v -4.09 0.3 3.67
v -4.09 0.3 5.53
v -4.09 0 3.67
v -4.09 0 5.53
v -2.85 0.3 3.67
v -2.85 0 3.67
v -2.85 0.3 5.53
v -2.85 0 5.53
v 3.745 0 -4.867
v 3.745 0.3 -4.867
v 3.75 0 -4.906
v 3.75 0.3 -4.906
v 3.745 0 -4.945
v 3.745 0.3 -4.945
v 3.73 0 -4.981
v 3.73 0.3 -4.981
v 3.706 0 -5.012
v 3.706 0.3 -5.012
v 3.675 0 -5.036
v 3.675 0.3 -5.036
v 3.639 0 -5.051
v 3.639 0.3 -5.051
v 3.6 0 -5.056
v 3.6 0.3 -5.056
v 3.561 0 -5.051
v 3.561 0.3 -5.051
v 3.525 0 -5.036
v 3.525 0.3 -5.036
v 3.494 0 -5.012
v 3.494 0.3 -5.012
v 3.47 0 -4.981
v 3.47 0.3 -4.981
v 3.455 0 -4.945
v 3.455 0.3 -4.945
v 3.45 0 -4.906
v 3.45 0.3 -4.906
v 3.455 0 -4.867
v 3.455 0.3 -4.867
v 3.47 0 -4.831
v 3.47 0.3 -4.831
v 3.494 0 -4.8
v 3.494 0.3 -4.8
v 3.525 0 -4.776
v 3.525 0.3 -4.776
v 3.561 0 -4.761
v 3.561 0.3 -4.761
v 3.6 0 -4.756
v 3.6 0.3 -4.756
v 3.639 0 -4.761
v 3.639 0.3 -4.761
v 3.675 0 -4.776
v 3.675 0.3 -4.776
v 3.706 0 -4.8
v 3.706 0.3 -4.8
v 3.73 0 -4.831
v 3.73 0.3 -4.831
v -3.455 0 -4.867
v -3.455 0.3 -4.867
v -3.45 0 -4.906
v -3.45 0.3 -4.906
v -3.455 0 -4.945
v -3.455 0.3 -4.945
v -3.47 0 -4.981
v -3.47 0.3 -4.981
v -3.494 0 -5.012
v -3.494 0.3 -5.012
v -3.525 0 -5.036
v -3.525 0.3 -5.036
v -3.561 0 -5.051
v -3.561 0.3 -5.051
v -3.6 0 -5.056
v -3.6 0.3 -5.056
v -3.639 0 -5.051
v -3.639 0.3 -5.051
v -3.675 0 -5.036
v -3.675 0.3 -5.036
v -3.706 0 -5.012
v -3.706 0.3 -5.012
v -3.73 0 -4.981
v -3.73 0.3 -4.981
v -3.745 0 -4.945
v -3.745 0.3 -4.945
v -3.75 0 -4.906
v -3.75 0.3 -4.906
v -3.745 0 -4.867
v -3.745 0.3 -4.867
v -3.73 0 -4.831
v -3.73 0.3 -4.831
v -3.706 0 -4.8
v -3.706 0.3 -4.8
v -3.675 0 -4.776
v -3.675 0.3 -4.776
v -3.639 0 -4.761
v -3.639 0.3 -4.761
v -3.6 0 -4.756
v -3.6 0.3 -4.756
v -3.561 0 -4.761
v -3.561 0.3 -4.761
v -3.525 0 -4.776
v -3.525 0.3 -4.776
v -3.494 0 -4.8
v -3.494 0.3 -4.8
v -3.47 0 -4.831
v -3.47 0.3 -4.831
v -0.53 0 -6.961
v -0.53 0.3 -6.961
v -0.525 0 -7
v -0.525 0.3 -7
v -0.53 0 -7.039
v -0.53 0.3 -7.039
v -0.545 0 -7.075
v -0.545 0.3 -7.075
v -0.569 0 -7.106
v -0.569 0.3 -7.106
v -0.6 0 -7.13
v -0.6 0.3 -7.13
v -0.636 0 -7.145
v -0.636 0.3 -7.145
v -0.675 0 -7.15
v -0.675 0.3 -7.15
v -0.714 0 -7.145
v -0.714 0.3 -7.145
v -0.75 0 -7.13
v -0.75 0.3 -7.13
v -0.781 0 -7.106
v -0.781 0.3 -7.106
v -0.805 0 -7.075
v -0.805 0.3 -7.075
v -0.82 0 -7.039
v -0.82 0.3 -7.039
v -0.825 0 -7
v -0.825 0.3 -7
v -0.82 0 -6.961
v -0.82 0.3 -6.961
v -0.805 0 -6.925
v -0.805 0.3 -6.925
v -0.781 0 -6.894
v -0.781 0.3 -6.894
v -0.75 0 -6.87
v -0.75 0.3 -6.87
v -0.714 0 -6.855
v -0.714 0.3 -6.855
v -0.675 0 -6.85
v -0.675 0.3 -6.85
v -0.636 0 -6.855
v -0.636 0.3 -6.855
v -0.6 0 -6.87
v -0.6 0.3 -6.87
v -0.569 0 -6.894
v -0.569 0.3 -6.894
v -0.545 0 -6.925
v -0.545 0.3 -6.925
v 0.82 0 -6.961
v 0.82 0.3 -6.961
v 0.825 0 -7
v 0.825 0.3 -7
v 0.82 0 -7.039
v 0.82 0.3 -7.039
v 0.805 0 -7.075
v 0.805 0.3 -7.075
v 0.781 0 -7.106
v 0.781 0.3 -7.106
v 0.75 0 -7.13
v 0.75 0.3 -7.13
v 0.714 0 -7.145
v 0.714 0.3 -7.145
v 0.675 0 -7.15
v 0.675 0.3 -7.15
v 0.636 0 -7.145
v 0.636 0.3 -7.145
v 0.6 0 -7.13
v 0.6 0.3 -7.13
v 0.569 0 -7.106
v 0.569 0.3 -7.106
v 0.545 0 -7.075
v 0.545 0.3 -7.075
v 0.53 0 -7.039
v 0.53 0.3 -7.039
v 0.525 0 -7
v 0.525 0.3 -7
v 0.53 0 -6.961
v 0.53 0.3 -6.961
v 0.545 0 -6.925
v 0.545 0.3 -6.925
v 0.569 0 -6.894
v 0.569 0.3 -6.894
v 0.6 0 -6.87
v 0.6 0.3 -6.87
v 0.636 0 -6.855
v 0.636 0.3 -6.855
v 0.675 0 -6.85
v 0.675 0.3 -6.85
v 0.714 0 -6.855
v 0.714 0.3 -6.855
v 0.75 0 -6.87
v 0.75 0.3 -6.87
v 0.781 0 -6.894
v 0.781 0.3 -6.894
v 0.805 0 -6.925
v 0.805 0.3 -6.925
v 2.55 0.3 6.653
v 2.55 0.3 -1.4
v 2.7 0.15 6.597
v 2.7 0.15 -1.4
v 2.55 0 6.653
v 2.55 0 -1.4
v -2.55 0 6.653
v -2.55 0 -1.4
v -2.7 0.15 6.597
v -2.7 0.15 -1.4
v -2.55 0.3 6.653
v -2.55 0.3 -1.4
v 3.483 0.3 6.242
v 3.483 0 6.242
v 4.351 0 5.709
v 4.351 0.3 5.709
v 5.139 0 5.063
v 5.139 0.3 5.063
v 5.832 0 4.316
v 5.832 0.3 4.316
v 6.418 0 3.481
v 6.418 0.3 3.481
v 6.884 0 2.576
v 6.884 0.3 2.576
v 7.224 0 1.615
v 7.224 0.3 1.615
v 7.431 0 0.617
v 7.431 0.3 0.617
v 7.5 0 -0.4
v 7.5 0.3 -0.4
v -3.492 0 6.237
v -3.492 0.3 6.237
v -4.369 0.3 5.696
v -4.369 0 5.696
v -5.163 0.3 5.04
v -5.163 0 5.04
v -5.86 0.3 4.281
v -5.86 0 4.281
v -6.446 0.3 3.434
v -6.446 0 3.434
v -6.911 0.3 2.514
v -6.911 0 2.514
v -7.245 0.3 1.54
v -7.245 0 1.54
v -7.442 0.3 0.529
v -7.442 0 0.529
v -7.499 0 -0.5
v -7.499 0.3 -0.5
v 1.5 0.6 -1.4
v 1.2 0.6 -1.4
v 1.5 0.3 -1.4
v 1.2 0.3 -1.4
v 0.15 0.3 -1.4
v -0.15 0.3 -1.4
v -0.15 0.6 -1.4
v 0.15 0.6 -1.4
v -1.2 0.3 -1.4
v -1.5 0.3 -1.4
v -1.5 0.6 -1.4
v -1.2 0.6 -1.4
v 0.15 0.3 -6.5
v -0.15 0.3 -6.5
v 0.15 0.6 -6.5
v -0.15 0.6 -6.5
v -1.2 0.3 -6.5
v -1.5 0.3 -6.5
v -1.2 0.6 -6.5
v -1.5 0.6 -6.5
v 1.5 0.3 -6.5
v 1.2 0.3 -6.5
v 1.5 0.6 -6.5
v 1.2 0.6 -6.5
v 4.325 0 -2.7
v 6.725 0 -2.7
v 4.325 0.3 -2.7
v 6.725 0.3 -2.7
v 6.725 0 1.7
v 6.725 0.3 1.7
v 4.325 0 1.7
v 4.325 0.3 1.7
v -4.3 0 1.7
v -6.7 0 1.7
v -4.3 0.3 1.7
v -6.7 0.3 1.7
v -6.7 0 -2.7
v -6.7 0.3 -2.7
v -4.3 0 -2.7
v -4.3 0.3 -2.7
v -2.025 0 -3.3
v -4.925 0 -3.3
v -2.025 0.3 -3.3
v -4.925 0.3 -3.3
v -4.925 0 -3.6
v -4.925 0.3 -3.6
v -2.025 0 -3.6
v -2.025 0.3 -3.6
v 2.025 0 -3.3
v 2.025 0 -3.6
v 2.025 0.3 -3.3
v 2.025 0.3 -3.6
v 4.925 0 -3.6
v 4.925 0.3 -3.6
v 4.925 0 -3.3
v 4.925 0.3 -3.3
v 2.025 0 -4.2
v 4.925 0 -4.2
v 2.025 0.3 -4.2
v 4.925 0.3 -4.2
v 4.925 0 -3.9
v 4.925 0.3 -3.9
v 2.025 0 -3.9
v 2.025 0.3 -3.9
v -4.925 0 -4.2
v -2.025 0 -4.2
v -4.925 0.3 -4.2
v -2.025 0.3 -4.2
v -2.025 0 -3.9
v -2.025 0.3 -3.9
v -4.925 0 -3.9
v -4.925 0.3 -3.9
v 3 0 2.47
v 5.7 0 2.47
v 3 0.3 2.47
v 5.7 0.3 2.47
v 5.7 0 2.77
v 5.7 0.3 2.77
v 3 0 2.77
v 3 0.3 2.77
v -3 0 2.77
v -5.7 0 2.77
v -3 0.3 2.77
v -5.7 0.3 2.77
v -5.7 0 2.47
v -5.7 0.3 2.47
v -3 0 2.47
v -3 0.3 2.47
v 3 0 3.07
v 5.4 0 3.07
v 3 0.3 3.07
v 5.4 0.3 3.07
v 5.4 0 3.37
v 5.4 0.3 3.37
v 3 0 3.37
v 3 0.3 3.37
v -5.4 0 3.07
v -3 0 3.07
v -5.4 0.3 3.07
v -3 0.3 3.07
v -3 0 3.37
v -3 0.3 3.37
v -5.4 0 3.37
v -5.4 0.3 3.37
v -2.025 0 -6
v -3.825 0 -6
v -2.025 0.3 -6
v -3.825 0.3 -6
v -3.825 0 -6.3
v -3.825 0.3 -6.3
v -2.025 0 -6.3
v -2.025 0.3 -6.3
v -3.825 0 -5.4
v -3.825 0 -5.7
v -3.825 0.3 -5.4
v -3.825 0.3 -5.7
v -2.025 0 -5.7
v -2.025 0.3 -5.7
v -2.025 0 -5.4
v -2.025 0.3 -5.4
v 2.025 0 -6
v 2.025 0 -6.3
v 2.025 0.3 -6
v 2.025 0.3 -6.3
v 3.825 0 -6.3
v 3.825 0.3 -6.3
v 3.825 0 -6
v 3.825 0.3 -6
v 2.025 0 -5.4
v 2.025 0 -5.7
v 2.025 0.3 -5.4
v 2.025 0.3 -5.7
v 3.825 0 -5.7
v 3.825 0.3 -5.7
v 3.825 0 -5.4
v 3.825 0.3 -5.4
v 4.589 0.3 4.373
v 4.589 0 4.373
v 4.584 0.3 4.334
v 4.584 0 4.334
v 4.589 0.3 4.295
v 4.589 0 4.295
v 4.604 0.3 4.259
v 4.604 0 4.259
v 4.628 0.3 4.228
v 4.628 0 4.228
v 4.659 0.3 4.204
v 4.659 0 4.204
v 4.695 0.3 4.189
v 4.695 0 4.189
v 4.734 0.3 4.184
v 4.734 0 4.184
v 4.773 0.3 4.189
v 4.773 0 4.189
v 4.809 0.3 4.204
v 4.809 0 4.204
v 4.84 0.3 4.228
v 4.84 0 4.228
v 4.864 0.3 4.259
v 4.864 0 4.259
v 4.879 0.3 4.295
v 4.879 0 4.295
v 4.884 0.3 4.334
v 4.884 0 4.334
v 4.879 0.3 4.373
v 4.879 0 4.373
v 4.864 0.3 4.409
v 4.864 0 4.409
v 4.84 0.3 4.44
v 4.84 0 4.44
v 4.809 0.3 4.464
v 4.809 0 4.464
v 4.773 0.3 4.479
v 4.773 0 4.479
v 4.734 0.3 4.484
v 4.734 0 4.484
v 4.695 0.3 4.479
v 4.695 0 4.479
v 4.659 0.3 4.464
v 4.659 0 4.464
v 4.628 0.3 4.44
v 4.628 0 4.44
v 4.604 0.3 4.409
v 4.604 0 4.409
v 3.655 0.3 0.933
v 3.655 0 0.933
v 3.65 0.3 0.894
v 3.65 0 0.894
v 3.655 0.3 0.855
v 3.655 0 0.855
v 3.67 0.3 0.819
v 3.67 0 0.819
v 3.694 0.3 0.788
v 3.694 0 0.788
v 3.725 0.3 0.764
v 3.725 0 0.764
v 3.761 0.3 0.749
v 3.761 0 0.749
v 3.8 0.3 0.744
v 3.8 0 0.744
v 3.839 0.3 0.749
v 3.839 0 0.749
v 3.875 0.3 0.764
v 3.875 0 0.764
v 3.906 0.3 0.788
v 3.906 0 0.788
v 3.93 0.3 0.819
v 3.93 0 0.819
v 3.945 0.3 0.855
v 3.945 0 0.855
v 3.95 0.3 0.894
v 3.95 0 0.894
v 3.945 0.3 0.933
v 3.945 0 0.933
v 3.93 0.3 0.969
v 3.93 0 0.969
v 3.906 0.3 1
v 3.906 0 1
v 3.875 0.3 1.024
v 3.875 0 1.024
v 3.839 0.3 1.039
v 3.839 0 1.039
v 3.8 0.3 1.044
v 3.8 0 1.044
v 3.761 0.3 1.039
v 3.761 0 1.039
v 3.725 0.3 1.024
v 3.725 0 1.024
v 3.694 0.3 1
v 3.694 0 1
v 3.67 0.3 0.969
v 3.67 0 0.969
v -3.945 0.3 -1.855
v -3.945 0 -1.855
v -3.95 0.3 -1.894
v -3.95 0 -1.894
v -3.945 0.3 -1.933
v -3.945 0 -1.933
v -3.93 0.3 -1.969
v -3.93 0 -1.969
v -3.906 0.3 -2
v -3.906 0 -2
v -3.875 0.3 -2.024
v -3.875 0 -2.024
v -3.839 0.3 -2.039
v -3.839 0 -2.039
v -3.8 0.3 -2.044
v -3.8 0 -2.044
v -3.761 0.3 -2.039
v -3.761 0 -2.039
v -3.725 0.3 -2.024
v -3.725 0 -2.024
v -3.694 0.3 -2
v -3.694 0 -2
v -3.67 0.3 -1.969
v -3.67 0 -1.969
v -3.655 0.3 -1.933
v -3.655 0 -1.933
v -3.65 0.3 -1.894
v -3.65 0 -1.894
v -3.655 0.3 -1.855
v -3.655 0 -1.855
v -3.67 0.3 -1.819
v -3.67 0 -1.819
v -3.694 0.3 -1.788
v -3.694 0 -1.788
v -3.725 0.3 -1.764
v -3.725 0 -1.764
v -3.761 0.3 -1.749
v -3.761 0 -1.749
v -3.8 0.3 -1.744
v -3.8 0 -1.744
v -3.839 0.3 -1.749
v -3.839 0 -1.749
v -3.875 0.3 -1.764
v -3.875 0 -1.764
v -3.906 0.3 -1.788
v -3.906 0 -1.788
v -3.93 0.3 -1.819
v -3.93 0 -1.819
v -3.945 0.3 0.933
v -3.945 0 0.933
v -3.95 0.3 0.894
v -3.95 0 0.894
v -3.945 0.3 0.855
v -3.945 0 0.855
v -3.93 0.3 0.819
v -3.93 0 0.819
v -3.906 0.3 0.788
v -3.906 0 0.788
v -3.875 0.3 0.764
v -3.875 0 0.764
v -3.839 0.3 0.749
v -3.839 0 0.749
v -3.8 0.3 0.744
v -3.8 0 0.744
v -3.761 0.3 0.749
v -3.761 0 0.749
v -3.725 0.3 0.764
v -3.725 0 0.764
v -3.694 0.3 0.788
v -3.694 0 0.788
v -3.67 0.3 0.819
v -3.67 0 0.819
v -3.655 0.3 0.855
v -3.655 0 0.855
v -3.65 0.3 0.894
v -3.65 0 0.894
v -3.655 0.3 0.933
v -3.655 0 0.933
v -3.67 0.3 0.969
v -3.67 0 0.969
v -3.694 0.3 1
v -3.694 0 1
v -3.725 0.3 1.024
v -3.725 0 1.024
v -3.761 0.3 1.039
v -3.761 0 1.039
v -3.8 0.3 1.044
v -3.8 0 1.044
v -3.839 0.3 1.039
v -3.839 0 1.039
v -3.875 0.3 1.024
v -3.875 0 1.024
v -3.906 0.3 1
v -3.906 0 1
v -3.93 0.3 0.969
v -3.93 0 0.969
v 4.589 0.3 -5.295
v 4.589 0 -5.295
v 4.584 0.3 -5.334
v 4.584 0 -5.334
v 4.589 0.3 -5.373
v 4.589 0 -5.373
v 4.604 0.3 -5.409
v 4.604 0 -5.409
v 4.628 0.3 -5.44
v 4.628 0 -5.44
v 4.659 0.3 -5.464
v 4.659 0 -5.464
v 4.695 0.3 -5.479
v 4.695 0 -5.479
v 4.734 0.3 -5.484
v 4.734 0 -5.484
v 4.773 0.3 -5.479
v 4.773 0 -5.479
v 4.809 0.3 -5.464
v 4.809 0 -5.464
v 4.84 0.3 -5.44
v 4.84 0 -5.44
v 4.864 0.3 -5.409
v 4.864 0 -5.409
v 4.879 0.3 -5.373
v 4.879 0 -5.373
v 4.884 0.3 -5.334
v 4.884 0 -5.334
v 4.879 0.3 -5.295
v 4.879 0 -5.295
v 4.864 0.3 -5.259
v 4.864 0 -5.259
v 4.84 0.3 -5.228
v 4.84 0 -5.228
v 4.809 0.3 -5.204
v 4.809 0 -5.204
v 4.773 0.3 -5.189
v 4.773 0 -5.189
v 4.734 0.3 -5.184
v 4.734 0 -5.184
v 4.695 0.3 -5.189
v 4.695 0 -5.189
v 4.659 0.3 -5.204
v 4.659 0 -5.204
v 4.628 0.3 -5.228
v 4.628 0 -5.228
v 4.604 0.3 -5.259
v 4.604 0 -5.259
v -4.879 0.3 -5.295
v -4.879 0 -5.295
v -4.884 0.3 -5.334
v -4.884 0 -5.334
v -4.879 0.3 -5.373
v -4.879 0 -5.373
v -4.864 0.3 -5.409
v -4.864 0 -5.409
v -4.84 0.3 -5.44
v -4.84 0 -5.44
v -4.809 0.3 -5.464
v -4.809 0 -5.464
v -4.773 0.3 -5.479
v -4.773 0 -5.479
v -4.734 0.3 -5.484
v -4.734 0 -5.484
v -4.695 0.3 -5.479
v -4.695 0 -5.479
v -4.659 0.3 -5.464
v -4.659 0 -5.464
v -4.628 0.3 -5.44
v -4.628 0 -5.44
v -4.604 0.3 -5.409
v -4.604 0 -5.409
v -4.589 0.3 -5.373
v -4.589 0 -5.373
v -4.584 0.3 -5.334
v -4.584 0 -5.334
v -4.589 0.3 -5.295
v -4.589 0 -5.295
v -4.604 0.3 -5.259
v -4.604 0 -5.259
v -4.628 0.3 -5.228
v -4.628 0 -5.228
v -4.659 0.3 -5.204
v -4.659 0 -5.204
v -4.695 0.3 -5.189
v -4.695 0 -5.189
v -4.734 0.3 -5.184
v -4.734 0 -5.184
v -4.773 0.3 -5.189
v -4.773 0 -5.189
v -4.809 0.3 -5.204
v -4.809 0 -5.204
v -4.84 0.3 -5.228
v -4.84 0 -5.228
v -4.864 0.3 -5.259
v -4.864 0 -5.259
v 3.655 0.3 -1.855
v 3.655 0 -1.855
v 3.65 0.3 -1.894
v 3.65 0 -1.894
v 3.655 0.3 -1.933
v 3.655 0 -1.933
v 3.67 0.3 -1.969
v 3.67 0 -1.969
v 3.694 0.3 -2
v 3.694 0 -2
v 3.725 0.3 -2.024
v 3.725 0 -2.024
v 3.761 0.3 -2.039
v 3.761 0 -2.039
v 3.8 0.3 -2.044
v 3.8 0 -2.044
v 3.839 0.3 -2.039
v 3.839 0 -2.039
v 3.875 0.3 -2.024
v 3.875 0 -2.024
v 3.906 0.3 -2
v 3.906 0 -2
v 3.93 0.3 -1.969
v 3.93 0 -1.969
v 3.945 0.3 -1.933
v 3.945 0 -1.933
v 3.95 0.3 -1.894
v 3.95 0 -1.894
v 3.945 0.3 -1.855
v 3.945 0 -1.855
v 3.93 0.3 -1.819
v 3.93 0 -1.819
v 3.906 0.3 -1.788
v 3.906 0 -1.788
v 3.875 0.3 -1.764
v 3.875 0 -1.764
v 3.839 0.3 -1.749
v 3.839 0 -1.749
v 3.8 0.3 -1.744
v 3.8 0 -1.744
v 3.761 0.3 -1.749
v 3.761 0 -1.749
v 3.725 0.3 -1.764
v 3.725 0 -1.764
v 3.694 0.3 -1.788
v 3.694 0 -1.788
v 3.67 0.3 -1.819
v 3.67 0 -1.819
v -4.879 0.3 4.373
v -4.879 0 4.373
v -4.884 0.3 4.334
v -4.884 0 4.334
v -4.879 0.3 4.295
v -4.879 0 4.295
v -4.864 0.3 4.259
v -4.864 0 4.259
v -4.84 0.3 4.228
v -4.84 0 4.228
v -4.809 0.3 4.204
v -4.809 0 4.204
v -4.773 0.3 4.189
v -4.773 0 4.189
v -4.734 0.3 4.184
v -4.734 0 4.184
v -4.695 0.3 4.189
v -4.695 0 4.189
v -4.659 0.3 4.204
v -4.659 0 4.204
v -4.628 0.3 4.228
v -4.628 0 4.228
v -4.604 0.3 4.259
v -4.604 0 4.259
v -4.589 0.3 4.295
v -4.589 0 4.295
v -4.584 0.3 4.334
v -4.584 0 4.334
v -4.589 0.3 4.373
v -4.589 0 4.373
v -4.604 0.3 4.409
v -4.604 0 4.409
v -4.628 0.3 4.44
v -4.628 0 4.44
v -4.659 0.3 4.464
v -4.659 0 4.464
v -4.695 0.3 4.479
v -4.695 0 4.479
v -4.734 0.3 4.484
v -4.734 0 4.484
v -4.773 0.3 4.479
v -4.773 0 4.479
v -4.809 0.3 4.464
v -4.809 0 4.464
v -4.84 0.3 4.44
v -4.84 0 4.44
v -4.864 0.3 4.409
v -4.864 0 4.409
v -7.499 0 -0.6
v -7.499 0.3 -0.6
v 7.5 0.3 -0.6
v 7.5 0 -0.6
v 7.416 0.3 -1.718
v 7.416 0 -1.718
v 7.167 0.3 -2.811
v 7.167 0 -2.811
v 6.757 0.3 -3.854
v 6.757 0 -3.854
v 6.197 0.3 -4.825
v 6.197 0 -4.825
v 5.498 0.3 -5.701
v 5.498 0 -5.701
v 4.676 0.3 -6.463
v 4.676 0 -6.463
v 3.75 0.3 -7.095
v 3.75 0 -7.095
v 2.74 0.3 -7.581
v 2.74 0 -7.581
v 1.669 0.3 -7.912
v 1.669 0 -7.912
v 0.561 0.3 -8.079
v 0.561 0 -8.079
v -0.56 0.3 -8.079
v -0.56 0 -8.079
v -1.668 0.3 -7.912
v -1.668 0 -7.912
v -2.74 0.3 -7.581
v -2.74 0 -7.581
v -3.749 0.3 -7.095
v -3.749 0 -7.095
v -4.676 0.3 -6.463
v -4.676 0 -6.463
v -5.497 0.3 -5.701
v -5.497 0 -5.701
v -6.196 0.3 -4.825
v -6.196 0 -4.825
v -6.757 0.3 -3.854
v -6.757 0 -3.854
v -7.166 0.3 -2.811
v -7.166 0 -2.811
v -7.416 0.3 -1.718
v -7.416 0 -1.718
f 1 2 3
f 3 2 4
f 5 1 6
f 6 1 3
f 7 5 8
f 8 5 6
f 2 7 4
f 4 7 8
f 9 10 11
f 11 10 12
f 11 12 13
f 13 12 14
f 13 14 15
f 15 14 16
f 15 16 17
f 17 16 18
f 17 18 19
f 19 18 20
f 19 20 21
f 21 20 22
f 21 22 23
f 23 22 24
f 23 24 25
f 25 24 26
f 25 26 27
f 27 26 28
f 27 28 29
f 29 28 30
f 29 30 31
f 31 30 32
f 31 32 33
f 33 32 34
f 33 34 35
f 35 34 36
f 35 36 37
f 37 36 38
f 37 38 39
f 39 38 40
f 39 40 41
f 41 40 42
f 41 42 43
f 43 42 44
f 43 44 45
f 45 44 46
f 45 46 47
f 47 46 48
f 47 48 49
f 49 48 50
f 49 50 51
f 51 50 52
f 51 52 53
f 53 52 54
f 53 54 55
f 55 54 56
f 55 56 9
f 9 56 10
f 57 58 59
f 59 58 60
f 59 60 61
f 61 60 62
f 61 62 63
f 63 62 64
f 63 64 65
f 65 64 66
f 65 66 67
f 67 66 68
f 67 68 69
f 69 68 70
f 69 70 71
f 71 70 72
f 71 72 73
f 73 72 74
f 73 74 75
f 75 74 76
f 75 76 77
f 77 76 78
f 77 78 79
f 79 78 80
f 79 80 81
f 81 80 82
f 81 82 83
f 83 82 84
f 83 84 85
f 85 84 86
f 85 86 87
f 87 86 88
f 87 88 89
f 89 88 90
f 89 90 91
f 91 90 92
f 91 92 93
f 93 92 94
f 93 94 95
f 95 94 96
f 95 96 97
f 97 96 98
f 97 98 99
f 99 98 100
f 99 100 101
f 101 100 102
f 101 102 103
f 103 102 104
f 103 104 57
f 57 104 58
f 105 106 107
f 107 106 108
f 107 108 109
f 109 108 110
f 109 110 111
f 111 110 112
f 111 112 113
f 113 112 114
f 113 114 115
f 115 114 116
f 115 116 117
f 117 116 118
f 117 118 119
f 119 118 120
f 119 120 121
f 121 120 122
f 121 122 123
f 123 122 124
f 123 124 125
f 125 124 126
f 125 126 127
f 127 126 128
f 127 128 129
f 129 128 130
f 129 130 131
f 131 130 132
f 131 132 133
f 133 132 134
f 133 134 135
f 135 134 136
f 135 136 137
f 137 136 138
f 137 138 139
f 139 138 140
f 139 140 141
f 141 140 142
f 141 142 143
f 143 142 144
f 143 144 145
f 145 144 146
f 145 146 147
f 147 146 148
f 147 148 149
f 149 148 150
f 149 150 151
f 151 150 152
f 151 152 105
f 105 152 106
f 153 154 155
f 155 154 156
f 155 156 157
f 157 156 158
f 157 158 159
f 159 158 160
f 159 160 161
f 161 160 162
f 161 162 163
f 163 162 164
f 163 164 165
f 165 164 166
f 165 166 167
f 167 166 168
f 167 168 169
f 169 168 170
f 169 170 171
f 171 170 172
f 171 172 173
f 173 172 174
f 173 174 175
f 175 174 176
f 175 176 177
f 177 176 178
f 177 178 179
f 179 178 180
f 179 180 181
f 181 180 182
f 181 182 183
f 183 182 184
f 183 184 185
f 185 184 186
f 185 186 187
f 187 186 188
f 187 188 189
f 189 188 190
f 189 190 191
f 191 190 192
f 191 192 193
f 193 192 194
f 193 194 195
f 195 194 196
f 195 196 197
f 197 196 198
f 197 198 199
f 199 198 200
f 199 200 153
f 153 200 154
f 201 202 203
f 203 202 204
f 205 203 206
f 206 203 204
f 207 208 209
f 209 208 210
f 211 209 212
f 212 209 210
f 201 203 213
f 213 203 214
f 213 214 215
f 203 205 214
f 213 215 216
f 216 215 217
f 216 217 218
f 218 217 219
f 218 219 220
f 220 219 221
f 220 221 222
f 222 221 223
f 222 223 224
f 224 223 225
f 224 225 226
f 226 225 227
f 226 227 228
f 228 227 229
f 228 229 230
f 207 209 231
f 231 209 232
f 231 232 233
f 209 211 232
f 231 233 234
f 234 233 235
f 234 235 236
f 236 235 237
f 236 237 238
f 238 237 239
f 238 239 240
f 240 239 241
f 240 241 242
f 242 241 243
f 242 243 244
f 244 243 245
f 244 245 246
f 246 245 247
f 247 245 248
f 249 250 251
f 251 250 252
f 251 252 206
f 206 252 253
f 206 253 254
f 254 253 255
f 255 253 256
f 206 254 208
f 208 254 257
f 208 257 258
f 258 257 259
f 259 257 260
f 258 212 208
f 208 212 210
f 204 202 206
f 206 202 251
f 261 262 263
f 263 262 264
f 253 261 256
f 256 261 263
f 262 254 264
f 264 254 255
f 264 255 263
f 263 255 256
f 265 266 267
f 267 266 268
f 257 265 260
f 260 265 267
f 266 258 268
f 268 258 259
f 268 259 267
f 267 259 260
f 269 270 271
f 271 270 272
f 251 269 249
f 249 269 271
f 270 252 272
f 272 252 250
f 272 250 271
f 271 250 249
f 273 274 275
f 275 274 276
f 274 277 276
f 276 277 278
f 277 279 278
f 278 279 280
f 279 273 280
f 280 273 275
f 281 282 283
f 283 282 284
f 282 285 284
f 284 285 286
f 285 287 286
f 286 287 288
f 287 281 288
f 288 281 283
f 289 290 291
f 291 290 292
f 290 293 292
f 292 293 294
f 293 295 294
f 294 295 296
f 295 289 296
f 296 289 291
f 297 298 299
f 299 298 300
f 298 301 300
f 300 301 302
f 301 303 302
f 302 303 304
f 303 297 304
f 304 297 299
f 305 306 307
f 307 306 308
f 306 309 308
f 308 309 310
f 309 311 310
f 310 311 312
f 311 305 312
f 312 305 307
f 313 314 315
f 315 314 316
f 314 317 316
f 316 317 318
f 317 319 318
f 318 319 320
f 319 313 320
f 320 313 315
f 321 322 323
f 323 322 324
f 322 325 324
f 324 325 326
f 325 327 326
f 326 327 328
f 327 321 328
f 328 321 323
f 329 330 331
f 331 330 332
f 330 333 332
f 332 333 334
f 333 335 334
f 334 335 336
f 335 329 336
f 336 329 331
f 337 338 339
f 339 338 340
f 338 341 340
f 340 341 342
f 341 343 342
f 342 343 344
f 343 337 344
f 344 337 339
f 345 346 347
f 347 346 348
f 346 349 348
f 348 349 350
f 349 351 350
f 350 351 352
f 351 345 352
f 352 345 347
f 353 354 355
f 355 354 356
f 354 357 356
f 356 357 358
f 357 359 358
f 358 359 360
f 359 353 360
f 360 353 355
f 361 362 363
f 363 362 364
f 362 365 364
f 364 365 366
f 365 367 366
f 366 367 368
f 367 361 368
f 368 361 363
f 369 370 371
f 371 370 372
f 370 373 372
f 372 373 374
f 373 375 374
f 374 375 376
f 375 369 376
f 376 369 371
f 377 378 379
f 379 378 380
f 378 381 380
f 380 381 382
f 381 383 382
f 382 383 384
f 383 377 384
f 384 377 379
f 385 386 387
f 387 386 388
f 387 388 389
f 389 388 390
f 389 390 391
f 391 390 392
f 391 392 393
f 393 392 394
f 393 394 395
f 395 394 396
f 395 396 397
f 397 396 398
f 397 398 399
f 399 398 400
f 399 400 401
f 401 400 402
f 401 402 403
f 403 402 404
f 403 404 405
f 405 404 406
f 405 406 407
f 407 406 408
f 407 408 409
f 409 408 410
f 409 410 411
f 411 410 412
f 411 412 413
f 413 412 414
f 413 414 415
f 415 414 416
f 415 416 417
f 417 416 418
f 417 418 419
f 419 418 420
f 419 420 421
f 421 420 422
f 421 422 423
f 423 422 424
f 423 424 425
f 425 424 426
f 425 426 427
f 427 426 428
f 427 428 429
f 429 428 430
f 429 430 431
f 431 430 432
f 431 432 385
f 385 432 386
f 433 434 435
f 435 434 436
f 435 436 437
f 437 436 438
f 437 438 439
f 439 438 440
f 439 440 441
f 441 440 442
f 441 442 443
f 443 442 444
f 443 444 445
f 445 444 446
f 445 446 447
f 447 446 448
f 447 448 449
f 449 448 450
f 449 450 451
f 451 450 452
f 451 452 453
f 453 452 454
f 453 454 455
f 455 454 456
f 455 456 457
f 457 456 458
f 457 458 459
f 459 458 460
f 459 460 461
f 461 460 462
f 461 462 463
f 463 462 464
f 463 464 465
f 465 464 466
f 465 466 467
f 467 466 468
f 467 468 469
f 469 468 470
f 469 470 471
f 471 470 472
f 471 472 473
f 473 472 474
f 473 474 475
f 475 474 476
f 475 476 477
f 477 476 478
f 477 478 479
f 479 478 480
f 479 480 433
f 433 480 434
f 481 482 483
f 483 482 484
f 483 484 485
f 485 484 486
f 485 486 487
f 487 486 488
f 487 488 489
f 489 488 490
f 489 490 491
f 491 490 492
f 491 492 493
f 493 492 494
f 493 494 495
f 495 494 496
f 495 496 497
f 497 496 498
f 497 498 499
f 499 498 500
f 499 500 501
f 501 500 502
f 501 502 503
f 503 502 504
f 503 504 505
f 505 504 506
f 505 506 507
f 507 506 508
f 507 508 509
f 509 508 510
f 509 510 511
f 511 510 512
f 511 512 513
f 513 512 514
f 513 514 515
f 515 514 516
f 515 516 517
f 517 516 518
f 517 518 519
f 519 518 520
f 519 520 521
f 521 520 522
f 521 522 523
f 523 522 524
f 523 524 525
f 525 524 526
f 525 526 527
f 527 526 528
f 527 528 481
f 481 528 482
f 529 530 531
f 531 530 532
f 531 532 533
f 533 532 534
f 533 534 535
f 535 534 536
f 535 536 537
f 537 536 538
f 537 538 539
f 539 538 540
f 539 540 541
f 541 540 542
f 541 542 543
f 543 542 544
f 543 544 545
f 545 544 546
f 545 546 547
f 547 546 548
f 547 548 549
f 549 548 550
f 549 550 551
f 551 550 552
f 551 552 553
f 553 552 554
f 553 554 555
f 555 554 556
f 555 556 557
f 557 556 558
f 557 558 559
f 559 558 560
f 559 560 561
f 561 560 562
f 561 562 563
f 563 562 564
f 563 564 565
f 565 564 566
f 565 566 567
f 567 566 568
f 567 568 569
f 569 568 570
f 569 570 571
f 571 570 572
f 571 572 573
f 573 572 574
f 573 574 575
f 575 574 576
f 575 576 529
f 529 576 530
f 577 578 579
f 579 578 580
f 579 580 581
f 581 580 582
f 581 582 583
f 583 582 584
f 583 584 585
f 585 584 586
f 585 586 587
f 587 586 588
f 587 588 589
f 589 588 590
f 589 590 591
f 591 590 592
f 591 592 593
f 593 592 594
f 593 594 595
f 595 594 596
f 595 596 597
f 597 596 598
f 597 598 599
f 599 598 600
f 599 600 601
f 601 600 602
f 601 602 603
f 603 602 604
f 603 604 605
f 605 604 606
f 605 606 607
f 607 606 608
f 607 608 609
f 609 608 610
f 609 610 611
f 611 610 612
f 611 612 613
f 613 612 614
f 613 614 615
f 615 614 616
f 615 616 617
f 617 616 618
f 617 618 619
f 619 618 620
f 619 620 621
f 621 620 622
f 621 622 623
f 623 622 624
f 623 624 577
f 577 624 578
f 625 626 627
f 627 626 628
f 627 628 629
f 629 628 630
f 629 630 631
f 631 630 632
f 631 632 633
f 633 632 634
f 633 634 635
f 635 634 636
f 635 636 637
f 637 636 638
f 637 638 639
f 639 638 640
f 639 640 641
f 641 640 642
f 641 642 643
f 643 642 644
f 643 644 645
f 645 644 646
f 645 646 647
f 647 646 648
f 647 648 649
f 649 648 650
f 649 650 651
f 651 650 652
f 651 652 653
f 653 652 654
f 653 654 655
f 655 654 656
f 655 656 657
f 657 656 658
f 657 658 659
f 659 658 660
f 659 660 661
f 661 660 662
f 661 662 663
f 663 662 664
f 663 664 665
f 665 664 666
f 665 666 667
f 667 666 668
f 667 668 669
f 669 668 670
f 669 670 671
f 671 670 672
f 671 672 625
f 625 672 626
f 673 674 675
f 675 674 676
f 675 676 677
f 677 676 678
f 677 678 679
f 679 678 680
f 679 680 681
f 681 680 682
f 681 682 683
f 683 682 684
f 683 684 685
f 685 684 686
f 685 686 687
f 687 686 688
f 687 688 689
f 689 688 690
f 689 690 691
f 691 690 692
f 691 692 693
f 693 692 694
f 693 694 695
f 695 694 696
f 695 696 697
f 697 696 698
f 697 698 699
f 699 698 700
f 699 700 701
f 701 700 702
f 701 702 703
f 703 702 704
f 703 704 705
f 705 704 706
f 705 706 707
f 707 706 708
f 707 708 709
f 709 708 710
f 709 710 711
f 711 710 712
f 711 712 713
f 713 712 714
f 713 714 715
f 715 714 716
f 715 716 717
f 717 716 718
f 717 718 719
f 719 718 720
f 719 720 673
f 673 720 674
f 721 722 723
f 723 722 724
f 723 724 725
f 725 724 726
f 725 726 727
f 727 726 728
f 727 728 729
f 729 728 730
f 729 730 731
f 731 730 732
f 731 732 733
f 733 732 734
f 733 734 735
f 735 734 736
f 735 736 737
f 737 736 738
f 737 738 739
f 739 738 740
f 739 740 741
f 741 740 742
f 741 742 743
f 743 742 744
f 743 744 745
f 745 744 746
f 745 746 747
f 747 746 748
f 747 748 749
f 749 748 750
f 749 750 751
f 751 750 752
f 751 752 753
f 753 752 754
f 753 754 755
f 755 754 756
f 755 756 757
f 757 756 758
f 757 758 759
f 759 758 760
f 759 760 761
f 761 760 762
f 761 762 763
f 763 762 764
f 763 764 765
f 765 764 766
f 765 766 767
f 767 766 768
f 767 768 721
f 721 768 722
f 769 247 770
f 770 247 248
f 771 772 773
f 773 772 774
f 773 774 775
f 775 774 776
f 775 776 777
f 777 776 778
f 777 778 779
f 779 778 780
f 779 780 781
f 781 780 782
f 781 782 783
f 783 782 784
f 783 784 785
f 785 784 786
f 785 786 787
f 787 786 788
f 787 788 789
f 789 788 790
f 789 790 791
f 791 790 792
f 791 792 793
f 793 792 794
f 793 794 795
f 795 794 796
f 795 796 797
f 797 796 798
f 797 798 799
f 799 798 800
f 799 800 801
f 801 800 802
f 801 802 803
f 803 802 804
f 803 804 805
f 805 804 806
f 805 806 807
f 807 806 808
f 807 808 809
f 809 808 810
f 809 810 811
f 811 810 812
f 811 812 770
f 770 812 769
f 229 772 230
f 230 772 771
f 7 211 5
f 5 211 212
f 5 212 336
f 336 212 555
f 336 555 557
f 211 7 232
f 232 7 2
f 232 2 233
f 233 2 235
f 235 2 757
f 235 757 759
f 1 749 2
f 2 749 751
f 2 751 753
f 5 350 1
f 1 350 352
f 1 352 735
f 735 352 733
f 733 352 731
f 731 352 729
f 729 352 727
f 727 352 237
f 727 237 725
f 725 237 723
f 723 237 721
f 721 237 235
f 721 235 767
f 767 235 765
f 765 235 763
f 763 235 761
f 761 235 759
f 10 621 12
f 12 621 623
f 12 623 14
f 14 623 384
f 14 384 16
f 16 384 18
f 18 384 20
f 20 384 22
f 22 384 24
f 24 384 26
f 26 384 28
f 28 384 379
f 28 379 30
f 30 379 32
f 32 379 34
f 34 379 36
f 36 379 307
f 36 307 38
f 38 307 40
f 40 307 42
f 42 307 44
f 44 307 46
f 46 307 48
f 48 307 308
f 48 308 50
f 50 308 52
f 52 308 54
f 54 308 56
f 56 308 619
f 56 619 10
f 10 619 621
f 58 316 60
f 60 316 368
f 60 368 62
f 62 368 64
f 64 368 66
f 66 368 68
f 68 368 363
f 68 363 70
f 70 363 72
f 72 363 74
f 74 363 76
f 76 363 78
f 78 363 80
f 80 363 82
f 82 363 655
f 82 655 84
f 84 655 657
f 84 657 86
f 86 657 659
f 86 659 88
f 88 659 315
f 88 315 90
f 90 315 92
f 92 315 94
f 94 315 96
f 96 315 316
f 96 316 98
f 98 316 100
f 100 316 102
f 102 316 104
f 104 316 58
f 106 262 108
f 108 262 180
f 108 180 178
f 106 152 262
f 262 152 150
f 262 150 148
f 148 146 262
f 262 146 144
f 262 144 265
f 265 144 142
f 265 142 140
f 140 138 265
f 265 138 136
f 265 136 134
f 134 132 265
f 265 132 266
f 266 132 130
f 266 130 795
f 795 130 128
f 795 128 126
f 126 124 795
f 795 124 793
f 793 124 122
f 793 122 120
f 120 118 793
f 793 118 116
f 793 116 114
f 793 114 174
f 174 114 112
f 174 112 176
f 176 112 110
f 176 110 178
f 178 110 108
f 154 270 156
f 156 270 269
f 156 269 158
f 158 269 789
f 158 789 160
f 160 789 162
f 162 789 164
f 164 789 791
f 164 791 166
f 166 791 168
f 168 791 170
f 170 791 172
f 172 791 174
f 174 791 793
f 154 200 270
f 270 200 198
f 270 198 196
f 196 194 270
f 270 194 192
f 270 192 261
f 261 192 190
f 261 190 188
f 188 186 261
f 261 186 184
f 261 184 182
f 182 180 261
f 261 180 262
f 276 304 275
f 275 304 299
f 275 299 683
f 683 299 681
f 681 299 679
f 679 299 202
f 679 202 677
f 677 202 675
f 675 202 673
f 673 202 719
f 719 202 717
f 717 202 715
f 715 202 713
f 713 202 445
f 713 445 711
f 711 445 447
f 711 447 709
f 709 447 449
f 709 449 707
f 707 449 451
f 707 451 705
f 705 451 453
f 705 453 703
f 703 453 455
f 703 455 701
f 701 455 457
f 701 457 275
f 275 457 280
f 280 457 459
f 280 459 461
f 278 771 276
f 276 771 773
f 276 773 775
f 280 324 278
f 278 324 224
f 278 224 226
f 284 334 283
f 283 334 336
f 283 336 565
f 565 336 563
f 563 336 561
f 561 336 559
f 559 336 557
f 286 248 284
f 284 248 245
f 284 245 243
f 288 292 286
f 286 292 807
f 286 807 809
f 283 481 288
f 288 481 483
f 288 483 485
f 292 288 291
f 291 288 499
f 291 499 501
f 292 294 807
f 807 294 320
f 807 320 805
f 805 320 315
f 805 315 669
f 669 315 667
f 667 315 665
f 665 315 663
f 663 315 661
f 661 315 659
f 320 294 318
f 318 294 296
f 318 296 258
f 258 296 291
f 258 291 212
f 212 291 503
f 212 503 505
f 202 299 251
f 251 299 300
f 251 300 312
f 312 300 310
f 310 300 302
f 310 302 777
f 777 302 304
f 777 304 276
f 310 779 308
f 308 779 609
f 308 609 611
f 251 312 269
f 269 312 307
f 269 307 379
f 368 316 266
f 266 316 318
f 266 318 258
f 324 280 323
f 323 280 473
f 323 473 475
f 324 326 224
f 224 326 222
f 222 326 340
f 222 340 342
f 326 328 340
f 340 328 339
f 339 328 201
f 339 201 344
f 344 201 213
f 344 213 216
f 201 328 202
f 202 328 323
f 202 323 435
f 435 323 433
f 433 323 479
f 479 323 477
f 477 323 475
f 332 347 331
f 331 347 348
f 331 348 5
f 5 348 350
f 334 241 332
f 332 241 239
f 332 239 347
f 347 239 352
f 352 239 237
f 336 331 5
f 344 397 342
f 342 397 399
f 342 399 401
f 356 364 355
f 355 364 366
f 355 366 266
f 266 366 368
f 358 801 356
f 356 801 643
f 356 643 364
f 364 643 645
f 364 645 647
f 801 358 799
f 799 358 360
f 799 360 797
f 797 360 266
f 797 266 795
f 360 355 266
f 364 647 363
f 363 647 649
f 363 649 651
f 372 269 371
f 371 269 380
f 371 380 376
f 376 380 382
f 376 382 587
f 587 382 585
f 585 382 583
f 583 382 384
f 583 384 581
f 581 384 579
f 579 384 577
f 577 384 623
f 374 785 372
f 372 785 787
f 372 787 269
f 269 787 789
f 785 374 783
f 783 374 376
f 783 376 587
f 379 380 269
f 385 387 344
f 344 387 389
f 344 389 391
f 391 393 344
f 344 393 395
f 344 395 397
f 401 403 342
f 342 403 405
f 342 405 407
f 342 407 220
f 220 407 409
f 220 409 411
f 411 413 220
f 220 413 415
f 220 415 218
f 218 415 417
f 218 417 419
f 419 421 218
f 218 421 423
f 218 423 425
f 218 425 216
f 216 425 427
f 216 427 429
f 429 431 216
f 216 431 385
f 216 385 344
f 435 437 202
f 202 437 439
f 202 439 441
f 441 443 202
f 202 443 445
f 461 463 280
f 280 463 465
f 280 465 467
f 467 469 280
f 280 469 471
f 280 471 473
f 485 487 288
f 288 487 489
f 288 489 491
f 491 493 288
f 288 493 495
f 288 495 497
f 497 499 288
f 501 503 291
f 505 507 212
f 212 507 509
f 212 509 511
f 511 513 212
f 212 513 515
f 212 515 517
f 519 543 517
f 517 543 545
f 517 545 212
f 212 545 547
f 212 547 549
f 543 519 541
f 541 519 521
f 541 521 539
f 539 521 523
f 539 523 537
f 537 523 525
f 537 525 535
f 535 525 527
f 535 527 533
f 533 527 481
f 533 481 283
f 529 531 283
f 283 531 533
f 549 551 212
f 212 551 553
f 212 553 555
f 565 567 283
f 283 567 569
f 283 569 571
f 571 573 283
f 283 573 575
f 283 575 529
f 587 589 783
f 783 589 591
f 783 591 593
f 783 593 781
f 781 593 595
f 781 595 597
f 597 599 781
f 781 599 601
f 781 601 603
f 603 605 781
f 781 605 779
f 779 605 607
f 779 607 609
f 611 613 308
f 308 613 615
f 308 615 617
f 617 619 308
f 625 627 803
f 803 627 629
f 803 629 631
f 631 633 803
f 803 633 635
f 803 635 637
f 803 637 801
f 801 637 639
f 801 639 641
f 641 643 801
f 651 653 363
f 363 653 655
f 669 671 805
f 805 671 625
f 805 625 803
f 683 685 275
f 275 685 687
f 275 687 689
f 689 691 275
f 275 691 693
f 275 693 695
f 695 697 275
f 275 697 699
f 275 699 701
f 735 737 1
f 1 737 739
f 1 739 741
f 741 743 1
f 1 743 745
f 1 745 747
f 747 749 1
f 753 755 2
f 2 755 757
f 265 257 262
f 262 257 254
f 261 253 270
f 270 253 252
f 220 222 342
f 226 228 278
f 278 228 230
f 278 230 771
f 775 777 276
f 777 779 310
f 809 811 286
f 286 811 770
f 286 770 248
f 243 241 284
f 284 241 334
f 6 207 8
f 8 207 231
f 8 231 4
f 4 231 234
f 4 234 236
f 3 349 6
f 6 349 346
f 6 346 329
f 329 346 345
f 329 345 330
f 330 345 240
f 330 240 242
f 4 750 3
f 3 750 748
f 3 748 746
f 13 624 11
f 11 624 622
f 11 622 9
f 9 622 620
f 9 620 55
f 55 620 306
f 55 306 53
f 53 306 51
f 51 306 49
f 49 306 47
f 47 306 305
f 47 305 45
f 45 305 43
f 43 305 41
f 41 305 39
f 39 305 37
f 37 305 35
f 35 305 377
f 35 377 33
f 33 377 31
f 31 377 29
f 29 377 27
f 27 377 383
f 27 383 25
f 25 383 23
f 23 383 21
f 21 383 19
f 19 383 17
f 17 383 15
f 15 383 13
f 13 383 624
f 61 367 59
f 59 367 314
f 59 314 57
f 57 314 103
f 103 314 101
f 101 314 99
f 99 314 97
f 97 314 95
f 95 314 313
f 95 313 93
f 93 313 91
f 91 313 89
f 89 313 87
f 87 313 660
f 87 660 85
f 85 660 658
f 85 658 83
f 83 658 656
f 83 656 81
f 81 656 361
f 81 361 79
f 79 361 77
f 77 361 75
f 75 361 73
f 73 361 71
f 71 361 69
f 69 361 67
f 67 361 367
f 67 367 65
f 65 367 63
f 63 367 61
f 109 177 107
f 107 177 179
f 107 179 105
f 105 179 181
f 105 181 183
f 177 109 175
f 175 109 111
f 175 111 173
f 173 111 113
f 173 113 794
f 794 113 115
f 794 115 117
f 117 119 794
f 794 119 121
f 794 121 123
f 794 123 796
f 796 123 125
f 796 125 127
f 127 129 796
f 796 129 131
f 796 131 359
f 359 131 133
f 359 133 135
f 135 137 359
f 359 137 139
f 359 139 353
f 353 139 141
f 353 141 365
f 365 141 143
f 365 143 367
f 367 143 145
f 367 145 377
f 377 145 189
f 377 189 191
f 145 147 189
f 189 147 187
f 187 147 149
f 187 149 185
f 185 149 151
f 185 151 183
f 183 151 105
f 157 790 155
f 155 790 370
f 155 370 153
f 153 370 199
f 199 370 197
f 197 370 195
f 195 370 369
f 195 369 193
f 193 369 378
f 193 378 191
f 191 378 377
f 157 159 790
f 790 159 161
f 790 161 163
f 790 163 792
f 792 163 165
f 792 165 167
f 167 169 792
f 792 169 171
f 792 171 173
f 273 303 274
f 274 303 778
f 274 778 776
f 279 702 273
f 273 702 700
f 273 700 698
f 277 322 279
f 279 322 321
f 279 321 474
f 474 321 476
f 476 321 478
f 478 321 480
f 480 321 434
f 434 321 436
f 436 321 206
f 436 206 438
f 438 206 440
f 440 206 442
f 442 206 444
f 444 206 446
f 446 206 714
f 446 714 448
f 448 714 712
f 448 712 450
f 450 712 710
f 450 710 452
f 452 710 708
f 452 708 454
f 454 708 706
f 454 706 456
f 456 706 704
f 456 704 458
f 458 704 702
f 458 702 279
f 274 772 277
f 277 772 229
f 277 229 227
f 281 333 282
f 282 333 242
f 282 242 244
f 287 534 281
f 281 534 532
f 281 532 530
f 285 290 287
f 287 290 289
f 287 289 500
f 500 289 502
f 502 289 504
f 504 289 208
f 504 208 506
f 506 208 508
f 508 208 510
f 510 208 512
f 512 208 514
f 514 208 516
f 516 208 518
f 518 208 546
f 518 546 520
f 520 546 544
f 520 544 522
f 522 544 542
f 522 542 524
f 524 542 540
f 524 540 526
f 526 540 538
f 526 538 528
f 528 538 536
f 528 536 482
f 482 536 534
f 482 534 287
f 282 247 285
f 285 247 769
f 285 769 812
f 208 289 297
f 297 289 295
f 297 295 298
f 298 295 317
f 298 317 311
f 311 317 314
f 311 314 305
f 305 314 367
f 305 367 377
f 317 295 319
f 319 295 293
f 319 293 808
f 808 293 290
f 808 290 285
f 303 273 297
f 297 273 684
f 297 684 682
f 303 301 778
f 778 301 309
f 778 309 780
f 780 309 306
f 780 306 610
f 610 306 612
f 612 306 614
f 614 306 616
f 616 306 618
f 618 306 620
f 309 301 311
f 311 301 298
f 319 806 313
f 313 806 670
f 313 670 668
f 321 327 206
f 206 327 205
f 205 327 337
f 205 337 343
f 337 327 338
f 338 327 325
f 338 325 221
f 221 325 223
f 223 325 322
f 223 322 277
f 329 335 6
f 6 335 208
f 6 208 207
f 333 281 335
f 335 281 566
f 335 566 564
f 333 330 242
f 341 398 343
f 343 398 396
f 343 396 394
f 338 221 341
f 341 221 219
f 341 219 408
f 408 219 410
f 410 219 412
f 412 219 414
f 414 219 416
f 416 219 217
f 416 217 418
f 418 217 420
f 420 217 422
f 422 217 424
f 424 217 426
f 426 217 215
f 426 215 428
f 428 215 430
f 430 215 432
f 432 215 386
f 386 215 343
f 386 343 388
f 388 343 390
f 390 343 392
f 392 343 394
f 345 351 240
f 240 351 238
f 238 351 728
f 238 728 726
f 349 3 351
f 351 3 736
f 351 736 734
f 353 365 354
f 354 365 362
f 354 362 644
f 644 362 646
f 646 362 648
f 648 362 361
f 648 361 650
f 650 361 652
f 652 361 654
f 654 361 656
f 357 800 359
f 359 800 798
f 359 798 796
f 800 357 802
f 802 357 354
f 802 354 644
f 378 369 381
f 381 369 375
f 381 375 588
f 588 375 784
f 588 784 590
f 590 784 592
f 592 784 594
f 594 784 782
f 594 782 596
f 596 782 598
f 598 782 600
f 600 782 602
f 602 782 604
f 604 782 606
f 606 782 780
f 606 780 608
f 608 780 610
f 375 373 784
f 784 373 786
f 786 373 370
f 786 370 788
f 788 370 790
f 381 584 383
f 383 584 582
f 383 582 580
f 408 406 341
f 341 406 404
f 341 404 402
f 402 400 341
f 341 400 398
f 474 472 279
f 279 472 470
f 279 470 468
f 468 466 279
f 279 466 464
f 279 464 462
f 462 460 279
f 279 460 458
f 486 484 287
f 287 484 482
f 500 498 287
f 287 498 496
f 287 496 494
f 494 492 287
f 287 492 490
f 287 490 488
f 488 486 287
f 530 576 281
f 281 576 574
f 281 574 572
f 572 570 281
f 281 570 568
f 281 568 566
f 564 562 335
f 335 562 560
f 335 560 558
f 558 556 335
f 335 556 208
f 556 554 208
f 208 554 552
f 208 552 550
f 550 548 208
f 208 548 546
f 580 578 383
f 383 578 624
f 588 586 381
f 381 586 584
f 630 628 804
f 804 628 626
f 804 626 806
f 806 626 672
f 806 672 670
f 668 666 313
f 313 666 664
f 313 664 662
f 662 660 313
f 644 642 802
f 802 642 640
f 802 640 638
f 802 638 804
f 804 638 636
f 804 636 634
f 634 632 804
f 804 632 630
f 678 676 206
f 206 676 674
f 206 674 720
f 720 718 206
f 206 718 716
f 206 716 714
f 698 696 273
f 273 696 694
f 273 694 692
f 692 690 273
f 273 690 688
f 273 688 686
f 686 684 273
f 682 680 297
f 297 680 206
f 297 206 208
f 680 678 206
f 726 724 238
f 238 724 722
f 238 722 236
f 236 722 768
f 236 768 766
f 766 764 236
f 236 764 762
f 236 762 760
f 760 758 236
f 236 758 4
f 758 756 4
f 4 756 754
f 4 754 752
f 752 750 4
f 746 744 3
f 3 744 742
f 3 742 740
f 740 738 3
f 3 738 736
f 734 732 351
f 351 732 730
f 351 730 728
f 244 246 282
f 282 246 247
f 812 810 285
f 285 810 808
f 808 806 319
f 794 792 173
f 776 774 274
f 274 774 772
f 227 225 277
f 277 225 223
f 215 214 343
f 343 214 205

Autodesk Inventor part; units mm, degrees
ref_plane "YZ Plane" through (0, 0, 0) normal (1, 0, 0) x (0, 1, 0)
ref_plane "XZ Plane" through (0, 0, 0) normal (0, 1, 0) x (-1, 0, 0)
ref_plane "XY Plane" through (0, 0, 0) normal (0, 0, 1) x (1, 0, 0)
sketch "Boceto1" plane through (0, 0, 0) normal (0, 1, 0) x (-1, 0, 0)
  line L0 (4.925, -3.9) -> (4.925, -4.2)
  line L1 (4.925, -4.2) -> (2.025, -4.2)
  line L2 (2.025, -4.2) -> (2.025, -3.9)
  line L3 (2.025, -3.9) -> (4.925, -3.9)
  line L4 (-4.925, -3.3) -> (-2.025, -3.3)
  line L5 (-2.025, -3.3) -> (-2.025, -3.6)
  line L6 (-2.025, -3.6) -> (-4.925, -3.6)
  line L7 (-4.925, -3.6) -> (-4.925, -3.3)
  line L8 (3, 2.4695) -> (3, 2.7695)
  line L9 (3, 2.7695) -> (5.7, 2.7695)
  line L10 (5.7, 2.7695) -> (5.7, 2.4695)
  line L11 (5.7, 2.4695) -> (3, 2.4695)
  line L12 (3, 3.0695) -> (3, 3.3695)
  line L13 (3, 3.3695) -> (5.4, 3.3695)
  line L14 (5.4, 3.3695) -> (5.4, 3.0695)
  line L15 (5.4, 3.0695) -> (3, 3.0695)
  line L16 (2.025, -5.4) -> (3.825, -5.4)
  line L17 (3.825, -5.4) -> (3.825, -5.7)
  line L18 (3.825, -5.7) -> (2.025, -5.7)
  line L19 (2.025, -5.7) -> (2.025, -5.4)
  line L20 (-3.825, -5.7) -> (-3.825, -5.4)
  line L21 (-3.825, -5.4) -> (-2.025, -5.4)
  line L22 (-2.025, -5.4) -> (-2.025, -5.7)
  line L23 (-2.025, -5.7) -> (-3.825, -5.7)
  line L24 (-3.825, -6.3) -> (-3.825, -6)
  line L25 (-3.825, -6) -> (-2.025, -6)
  line L26 (-2.025, -6) -> (-2.025, -6.3)
  line L27 (-2.025, -6.3) -> (-3.825, -6.3)
  line L28 (2.025, -6.3) -> (2.025, -6)
  line L29 (2.025, -6) -> (3.825, -6)
  line L30 (3.825, -6) -> (3.825, -6.3)
  line L31 (3.825, -6.3) -> (2.025, -6.3)
  line L32 (-3, 3.3695) -> (-3, 3.0695)
  line L33 (-3, 3.0695) -> (-5.4, 3.0695)
  line L34 (-5.4, 3.0695) -> (-5.4, 3.3695)
  line L35 (-5.4, 3.3695) -> (-3, 3.3695)
  line L36 (-3, 2.7695) -> (-3, 2.4695)
  line L37 (-3, 2.4695) -> (-5.7, 2.4695)
  line L38 (-5.7, 2.4695) -> (-5.7, 2.7695)
  line L39 (-5.7, 2.7695) -> (-3, 2.7695)
  line L40 (-4.925, -4.2) -> (-4.925, -3.9)
  line L41 (-4.925, -3.9) -> (-2.025, -3.9)
  line L42 (-2.025, -3.9) -> (-2.025, -4.2)
  line L43 (-2.025, -4.2) -> (-4.925, -4.2)
  line L44 (4.925, -3.6) -> (2.025, -3.6)
  line L45 (2.025, -3.6) -> (2.025, -3.3)
  line L46 (2.025, -3.3) -> (4.925, -3.3)
  line L47 (4.925, -3.3) -> (4.925, -3.6)
  line L48 (0.15, -6.5) -> (-0.15, -6.5)
  line L49 (-1.2, -6.5) -> (-1.5, -6.5)
  line L50 (1.5, -6.5) -> (1.2, -6.5)
  line L51 (-6.725, -2.7) -> (-6.725, 1.7)
  line L52 (-6.725, 1.7) -> (-4.325, 1.7)
  line L53 (-4.325, 1.7) -> (-4.325, -2.7)
  line L54 (-4.325, -2.7) -> (-6.725, -2.7)
  line L55 (4.3, -2.7) -> (4.3, 1.7)
  line L56 (4.3, 1.7) -> (6.7, 1.7)
  line L57 (6.7, 1.7) -> (6.7, -2.7)
  line L58 (6.7, -2.7) -> (4.3, -2.7)
  circle A0 centre (-4.734, 4.334) radius 0.15
  circle A1 centre (4.734, 4.334) radius 0.15
  circle A2 centre (-4.734, -5.334) radius 0.15
  circle A3 centre (4.734, -5.334) radius 0.15
  circle A4 centre (-3.8, 0.894) radius 0.15
  circle A5 centre (-3.8, -1.894) radius 0.15
  circle A6 centre (3.8, 0.894) radius 0.15
  circle A7 centre (3.8, -1.894) radius 0.15
  line L59 (2.55, -1.4) -> (-2.55, -1.4)
  line L60 (1.5, -1.4) -> (1.5, -6.5)
  line L61 (1.2, -6.5) -> (1.2, -1.4)
  line L62 (0.15, -1.4) -> (0.15, -6.5)
  line L63 (-0.15, -6.5) -> (-0.15, -1.4)
  line L64 (-1.5, -6.5) -> (-1.5, -1.4)
  line L65 (-1.2, -1.4) -> (-1.2, -6.5)
  line L66 (2.55, -1.4) -> (2.55, 6.6532)
  line L67 (-2.55, -1.4) -> (-2.55, 6.6532)
  line L68 (-7.5, -0.5) -> (-7.5, -0.4)
  line L69 (7.5, -0.5) -> (7.5, -0.4)
  line L70 (-7.5, -0.5) -> (-7.5, -0.6)
  line L71 (7.4993, -0.5) -> (7.4993, -0.6)
  arc A8 (-7.5, -0.6) -> (7.4993, -0.6) centre (-0.0003, -0.6) ccw
  arc A9 (7.4993, -0.5) -> (2.55, 6.6532) centre (0, -0.4) ccw
  arc A10 (-2.55, 6.6532) -> (-7.5, -0.4) centre (0, -0.4) ccw
  line L72 (-4.734, -5.184) -> (-5.4457, -5.184)
  line L73 (-4.734, -5.184) -> (-4.734, -5.334)
  point P0 (2.352, 6.909)
  dimension "d13" = 0.1
  dimension "d14" = 0.1
  dimension "d15" = 0.1
extrude "Extrusión1" add sketch "Boceto1" along normal blind 0.3 contours L62 L59 L61 L50 L60 L66 A9 L69 L71 A8 L70 L68 A10 L67 L64 L49 L65 L63 L48
sketch "Boceto2" plane through (0, 0.3, 0) normal (0, 1, 0) x (1, 0, 0)
  line L0 (-1.2, 6.5) -> (-1.2, 1.4) projected
  line L1 (-1.5, 1.4) -> (-1.5, 6.5) projected
  line L2 (-0.15, 1.4) -> (-0.15, 6.5) projected
  line L3 (0.15, 6.5) -> (0.15, 1.4) projected
  line L4 (1.2, 1.4) -> (1.2, 6.5) projected
  line L5 (1.5, 6.5) -> (1.5, 1.4) projected
  line L6 (1.2, 6.5) -> (1.5, 6.5) projected
  line L7 (-0.15, 6.5) -> (0.15, 6.5) projected
  line L8 (-1.5, 6.5) -> (-1.2, 6.5) projected
  line L9 (-1.5, 6.5) -> (-1.2, 6.5)
  line L10 (-1.2, 6.5) -> (-1.2, 1.4)
  line L11 (-1.2, 1.4) -> (-1.5, 1.4)
  line L12 (-1.5, 1.4) -> (-1.5, 6.5)
  line L13 (-0.15, 6.5) -> (0.15, 6.5)
  line L14 (0.15, 6.5) -> (0.15, 1.4)
  line L15 (0.15, 1.4) -> (-0.15, 1.4)
  line L16 (-0.15, 1.4) -> (-0.15, 6.5)
  line L17 (1.2, 6.5) -> (1.5, 6.5)
  line L18 (1.5, 6.5) -> (1.5, 1.4)
  line L19 (1.5, 1.4) -> (1.2, 1.4)
  line L20 (1.2, 1.4) -> (1.2, 6.5)
  point P0 (0, 0)
extrude "Extrusión2" add sketch "Boceto2" along normal mid plane 0.6
sketch "Boceto3" plane through (-2.4, 0, -1.4) normal (0, 0, 1) x (1, 0, 0)
  line L0 (0, 0) -> (4.8, 0)
  line L1 (0, 0.3) -> (4.8, 0.3)
  line L2 (0, 0.3) -> (4.8, 0.3)
  line L3 (9.9, 0.3) -> (-5.1, 0.3)
  line L4 (4.8, 0) -> (0, 0)
  line L5 (9.9, 0) -> (-5.1, 0)
  line L6 (-0.3, 0.15) -> (-0.15, 0)
  line L7 (-0.3, 0.15) -> (-0.15, 0.3)
  line L8 (5.1, 0.15) -> (4.95, 0.3)
  line L9 (5.1, 0.15) -> (4.95, 0)
  line L10 (-0.15, 0.3) -> (4.95, 0.3)
  line L11 (4.95, 0) -> (-0.15, 0)
  point P0 (2.4, 0)
  point P1 (0.048, 0)
  point P2 (4.752, 0)
extrude "Extrusión3" cut sketch "Boceto3" along normal blind 10
sketch "Boceto4" plane through (0, 0.3, 0) normal (0, 1, 0) x (1, 0, 0)
  circle A0 centre (-0.675, 7) radius 0.15
  line L0 (4.325, -1.7) -> (4.325, 2.7)
  circle A1 centre (0.675, 7) radius 0.15
  line L1 (-6.7, -1.7) -> (-6.7, 2.7)
  line L2 (-6.7, 2.7) -> (-4.3, 2.7)
  line L3 (-4.3, 2.7) -> (-4.3, -1.7)
  line L4 (-4.3, -1.7) -> (-6.7, -1.7)
  line L5 (4.325, 2.7) -> (6.725, 2.7)
  line L6 (6.725, 2.7) -> (6.725, -1.7)
  line L7 (-3.825, 5.8) -> (-2.025, 5.8)
  line L8 (-2.025, 5.5) -> (-3.825, 5.5)
  line L9 (2.025, 5.8) -> (3.825, 5.8)
  line L10 (3.825, 5.5) -> (2.025, 5.5)
  line L11 (4.325, 2.7) -> (6.725, 2.7) projected
  line L12 (2.025, 6.3) -> (3.825, 6.3) projected
  point P0 (0, 0)
extrude "Extrusión4" cut sketch "Boceto4" against normal blind 10 contours A0 | A1
sketch "Boceto8" plane through (0, 0.3, 0) normal (0, 1, 0) x (1, 0, 0)
  circle A0 centre (-3.8, -0.894) radius 0.15 projected
  line L0 (0, 0) -> (0, -2.4412)
  circle A1 centre (3.8, -0.894) radius 0.15
  circle A2 centre (3.6, 4.906) radius 0.15
  circle A3 centre (-3.6, 4.906) radius 0.15
  dimension "d33" = 0.3
  dimension "d34" = 0.3
extrude "Extrusión6" cut sketch "Boceto8" against normal blind 10 contours A2 | A3
sketch "Boceto9" plane through (0, 0, 0) normal (0, -1, 0) x (1, 0, 0)
  line L0 (-2.85, 3.6695) -> (-4.09, 3.6695)
  line L1 (-4.09, 5.5295) -> (-4.09, 3.6695)
  line L2 (-2.85, 3.6695) -> (-2.85, 5.5295)
  line L3 (-4.09, 5.5295) -> (-2.85, 5.5295)
  line L4 (-3, 3.3695) -> (-5.4, 3.3695) projected
  line L5 (-2.55, 6.6532) -> (-2.55, -1.4) projected
  point P0 (0, 0)
extrude "Extrusión7" cut sketch "Boceto9" against normal blind 10
properties part number "LBase"
